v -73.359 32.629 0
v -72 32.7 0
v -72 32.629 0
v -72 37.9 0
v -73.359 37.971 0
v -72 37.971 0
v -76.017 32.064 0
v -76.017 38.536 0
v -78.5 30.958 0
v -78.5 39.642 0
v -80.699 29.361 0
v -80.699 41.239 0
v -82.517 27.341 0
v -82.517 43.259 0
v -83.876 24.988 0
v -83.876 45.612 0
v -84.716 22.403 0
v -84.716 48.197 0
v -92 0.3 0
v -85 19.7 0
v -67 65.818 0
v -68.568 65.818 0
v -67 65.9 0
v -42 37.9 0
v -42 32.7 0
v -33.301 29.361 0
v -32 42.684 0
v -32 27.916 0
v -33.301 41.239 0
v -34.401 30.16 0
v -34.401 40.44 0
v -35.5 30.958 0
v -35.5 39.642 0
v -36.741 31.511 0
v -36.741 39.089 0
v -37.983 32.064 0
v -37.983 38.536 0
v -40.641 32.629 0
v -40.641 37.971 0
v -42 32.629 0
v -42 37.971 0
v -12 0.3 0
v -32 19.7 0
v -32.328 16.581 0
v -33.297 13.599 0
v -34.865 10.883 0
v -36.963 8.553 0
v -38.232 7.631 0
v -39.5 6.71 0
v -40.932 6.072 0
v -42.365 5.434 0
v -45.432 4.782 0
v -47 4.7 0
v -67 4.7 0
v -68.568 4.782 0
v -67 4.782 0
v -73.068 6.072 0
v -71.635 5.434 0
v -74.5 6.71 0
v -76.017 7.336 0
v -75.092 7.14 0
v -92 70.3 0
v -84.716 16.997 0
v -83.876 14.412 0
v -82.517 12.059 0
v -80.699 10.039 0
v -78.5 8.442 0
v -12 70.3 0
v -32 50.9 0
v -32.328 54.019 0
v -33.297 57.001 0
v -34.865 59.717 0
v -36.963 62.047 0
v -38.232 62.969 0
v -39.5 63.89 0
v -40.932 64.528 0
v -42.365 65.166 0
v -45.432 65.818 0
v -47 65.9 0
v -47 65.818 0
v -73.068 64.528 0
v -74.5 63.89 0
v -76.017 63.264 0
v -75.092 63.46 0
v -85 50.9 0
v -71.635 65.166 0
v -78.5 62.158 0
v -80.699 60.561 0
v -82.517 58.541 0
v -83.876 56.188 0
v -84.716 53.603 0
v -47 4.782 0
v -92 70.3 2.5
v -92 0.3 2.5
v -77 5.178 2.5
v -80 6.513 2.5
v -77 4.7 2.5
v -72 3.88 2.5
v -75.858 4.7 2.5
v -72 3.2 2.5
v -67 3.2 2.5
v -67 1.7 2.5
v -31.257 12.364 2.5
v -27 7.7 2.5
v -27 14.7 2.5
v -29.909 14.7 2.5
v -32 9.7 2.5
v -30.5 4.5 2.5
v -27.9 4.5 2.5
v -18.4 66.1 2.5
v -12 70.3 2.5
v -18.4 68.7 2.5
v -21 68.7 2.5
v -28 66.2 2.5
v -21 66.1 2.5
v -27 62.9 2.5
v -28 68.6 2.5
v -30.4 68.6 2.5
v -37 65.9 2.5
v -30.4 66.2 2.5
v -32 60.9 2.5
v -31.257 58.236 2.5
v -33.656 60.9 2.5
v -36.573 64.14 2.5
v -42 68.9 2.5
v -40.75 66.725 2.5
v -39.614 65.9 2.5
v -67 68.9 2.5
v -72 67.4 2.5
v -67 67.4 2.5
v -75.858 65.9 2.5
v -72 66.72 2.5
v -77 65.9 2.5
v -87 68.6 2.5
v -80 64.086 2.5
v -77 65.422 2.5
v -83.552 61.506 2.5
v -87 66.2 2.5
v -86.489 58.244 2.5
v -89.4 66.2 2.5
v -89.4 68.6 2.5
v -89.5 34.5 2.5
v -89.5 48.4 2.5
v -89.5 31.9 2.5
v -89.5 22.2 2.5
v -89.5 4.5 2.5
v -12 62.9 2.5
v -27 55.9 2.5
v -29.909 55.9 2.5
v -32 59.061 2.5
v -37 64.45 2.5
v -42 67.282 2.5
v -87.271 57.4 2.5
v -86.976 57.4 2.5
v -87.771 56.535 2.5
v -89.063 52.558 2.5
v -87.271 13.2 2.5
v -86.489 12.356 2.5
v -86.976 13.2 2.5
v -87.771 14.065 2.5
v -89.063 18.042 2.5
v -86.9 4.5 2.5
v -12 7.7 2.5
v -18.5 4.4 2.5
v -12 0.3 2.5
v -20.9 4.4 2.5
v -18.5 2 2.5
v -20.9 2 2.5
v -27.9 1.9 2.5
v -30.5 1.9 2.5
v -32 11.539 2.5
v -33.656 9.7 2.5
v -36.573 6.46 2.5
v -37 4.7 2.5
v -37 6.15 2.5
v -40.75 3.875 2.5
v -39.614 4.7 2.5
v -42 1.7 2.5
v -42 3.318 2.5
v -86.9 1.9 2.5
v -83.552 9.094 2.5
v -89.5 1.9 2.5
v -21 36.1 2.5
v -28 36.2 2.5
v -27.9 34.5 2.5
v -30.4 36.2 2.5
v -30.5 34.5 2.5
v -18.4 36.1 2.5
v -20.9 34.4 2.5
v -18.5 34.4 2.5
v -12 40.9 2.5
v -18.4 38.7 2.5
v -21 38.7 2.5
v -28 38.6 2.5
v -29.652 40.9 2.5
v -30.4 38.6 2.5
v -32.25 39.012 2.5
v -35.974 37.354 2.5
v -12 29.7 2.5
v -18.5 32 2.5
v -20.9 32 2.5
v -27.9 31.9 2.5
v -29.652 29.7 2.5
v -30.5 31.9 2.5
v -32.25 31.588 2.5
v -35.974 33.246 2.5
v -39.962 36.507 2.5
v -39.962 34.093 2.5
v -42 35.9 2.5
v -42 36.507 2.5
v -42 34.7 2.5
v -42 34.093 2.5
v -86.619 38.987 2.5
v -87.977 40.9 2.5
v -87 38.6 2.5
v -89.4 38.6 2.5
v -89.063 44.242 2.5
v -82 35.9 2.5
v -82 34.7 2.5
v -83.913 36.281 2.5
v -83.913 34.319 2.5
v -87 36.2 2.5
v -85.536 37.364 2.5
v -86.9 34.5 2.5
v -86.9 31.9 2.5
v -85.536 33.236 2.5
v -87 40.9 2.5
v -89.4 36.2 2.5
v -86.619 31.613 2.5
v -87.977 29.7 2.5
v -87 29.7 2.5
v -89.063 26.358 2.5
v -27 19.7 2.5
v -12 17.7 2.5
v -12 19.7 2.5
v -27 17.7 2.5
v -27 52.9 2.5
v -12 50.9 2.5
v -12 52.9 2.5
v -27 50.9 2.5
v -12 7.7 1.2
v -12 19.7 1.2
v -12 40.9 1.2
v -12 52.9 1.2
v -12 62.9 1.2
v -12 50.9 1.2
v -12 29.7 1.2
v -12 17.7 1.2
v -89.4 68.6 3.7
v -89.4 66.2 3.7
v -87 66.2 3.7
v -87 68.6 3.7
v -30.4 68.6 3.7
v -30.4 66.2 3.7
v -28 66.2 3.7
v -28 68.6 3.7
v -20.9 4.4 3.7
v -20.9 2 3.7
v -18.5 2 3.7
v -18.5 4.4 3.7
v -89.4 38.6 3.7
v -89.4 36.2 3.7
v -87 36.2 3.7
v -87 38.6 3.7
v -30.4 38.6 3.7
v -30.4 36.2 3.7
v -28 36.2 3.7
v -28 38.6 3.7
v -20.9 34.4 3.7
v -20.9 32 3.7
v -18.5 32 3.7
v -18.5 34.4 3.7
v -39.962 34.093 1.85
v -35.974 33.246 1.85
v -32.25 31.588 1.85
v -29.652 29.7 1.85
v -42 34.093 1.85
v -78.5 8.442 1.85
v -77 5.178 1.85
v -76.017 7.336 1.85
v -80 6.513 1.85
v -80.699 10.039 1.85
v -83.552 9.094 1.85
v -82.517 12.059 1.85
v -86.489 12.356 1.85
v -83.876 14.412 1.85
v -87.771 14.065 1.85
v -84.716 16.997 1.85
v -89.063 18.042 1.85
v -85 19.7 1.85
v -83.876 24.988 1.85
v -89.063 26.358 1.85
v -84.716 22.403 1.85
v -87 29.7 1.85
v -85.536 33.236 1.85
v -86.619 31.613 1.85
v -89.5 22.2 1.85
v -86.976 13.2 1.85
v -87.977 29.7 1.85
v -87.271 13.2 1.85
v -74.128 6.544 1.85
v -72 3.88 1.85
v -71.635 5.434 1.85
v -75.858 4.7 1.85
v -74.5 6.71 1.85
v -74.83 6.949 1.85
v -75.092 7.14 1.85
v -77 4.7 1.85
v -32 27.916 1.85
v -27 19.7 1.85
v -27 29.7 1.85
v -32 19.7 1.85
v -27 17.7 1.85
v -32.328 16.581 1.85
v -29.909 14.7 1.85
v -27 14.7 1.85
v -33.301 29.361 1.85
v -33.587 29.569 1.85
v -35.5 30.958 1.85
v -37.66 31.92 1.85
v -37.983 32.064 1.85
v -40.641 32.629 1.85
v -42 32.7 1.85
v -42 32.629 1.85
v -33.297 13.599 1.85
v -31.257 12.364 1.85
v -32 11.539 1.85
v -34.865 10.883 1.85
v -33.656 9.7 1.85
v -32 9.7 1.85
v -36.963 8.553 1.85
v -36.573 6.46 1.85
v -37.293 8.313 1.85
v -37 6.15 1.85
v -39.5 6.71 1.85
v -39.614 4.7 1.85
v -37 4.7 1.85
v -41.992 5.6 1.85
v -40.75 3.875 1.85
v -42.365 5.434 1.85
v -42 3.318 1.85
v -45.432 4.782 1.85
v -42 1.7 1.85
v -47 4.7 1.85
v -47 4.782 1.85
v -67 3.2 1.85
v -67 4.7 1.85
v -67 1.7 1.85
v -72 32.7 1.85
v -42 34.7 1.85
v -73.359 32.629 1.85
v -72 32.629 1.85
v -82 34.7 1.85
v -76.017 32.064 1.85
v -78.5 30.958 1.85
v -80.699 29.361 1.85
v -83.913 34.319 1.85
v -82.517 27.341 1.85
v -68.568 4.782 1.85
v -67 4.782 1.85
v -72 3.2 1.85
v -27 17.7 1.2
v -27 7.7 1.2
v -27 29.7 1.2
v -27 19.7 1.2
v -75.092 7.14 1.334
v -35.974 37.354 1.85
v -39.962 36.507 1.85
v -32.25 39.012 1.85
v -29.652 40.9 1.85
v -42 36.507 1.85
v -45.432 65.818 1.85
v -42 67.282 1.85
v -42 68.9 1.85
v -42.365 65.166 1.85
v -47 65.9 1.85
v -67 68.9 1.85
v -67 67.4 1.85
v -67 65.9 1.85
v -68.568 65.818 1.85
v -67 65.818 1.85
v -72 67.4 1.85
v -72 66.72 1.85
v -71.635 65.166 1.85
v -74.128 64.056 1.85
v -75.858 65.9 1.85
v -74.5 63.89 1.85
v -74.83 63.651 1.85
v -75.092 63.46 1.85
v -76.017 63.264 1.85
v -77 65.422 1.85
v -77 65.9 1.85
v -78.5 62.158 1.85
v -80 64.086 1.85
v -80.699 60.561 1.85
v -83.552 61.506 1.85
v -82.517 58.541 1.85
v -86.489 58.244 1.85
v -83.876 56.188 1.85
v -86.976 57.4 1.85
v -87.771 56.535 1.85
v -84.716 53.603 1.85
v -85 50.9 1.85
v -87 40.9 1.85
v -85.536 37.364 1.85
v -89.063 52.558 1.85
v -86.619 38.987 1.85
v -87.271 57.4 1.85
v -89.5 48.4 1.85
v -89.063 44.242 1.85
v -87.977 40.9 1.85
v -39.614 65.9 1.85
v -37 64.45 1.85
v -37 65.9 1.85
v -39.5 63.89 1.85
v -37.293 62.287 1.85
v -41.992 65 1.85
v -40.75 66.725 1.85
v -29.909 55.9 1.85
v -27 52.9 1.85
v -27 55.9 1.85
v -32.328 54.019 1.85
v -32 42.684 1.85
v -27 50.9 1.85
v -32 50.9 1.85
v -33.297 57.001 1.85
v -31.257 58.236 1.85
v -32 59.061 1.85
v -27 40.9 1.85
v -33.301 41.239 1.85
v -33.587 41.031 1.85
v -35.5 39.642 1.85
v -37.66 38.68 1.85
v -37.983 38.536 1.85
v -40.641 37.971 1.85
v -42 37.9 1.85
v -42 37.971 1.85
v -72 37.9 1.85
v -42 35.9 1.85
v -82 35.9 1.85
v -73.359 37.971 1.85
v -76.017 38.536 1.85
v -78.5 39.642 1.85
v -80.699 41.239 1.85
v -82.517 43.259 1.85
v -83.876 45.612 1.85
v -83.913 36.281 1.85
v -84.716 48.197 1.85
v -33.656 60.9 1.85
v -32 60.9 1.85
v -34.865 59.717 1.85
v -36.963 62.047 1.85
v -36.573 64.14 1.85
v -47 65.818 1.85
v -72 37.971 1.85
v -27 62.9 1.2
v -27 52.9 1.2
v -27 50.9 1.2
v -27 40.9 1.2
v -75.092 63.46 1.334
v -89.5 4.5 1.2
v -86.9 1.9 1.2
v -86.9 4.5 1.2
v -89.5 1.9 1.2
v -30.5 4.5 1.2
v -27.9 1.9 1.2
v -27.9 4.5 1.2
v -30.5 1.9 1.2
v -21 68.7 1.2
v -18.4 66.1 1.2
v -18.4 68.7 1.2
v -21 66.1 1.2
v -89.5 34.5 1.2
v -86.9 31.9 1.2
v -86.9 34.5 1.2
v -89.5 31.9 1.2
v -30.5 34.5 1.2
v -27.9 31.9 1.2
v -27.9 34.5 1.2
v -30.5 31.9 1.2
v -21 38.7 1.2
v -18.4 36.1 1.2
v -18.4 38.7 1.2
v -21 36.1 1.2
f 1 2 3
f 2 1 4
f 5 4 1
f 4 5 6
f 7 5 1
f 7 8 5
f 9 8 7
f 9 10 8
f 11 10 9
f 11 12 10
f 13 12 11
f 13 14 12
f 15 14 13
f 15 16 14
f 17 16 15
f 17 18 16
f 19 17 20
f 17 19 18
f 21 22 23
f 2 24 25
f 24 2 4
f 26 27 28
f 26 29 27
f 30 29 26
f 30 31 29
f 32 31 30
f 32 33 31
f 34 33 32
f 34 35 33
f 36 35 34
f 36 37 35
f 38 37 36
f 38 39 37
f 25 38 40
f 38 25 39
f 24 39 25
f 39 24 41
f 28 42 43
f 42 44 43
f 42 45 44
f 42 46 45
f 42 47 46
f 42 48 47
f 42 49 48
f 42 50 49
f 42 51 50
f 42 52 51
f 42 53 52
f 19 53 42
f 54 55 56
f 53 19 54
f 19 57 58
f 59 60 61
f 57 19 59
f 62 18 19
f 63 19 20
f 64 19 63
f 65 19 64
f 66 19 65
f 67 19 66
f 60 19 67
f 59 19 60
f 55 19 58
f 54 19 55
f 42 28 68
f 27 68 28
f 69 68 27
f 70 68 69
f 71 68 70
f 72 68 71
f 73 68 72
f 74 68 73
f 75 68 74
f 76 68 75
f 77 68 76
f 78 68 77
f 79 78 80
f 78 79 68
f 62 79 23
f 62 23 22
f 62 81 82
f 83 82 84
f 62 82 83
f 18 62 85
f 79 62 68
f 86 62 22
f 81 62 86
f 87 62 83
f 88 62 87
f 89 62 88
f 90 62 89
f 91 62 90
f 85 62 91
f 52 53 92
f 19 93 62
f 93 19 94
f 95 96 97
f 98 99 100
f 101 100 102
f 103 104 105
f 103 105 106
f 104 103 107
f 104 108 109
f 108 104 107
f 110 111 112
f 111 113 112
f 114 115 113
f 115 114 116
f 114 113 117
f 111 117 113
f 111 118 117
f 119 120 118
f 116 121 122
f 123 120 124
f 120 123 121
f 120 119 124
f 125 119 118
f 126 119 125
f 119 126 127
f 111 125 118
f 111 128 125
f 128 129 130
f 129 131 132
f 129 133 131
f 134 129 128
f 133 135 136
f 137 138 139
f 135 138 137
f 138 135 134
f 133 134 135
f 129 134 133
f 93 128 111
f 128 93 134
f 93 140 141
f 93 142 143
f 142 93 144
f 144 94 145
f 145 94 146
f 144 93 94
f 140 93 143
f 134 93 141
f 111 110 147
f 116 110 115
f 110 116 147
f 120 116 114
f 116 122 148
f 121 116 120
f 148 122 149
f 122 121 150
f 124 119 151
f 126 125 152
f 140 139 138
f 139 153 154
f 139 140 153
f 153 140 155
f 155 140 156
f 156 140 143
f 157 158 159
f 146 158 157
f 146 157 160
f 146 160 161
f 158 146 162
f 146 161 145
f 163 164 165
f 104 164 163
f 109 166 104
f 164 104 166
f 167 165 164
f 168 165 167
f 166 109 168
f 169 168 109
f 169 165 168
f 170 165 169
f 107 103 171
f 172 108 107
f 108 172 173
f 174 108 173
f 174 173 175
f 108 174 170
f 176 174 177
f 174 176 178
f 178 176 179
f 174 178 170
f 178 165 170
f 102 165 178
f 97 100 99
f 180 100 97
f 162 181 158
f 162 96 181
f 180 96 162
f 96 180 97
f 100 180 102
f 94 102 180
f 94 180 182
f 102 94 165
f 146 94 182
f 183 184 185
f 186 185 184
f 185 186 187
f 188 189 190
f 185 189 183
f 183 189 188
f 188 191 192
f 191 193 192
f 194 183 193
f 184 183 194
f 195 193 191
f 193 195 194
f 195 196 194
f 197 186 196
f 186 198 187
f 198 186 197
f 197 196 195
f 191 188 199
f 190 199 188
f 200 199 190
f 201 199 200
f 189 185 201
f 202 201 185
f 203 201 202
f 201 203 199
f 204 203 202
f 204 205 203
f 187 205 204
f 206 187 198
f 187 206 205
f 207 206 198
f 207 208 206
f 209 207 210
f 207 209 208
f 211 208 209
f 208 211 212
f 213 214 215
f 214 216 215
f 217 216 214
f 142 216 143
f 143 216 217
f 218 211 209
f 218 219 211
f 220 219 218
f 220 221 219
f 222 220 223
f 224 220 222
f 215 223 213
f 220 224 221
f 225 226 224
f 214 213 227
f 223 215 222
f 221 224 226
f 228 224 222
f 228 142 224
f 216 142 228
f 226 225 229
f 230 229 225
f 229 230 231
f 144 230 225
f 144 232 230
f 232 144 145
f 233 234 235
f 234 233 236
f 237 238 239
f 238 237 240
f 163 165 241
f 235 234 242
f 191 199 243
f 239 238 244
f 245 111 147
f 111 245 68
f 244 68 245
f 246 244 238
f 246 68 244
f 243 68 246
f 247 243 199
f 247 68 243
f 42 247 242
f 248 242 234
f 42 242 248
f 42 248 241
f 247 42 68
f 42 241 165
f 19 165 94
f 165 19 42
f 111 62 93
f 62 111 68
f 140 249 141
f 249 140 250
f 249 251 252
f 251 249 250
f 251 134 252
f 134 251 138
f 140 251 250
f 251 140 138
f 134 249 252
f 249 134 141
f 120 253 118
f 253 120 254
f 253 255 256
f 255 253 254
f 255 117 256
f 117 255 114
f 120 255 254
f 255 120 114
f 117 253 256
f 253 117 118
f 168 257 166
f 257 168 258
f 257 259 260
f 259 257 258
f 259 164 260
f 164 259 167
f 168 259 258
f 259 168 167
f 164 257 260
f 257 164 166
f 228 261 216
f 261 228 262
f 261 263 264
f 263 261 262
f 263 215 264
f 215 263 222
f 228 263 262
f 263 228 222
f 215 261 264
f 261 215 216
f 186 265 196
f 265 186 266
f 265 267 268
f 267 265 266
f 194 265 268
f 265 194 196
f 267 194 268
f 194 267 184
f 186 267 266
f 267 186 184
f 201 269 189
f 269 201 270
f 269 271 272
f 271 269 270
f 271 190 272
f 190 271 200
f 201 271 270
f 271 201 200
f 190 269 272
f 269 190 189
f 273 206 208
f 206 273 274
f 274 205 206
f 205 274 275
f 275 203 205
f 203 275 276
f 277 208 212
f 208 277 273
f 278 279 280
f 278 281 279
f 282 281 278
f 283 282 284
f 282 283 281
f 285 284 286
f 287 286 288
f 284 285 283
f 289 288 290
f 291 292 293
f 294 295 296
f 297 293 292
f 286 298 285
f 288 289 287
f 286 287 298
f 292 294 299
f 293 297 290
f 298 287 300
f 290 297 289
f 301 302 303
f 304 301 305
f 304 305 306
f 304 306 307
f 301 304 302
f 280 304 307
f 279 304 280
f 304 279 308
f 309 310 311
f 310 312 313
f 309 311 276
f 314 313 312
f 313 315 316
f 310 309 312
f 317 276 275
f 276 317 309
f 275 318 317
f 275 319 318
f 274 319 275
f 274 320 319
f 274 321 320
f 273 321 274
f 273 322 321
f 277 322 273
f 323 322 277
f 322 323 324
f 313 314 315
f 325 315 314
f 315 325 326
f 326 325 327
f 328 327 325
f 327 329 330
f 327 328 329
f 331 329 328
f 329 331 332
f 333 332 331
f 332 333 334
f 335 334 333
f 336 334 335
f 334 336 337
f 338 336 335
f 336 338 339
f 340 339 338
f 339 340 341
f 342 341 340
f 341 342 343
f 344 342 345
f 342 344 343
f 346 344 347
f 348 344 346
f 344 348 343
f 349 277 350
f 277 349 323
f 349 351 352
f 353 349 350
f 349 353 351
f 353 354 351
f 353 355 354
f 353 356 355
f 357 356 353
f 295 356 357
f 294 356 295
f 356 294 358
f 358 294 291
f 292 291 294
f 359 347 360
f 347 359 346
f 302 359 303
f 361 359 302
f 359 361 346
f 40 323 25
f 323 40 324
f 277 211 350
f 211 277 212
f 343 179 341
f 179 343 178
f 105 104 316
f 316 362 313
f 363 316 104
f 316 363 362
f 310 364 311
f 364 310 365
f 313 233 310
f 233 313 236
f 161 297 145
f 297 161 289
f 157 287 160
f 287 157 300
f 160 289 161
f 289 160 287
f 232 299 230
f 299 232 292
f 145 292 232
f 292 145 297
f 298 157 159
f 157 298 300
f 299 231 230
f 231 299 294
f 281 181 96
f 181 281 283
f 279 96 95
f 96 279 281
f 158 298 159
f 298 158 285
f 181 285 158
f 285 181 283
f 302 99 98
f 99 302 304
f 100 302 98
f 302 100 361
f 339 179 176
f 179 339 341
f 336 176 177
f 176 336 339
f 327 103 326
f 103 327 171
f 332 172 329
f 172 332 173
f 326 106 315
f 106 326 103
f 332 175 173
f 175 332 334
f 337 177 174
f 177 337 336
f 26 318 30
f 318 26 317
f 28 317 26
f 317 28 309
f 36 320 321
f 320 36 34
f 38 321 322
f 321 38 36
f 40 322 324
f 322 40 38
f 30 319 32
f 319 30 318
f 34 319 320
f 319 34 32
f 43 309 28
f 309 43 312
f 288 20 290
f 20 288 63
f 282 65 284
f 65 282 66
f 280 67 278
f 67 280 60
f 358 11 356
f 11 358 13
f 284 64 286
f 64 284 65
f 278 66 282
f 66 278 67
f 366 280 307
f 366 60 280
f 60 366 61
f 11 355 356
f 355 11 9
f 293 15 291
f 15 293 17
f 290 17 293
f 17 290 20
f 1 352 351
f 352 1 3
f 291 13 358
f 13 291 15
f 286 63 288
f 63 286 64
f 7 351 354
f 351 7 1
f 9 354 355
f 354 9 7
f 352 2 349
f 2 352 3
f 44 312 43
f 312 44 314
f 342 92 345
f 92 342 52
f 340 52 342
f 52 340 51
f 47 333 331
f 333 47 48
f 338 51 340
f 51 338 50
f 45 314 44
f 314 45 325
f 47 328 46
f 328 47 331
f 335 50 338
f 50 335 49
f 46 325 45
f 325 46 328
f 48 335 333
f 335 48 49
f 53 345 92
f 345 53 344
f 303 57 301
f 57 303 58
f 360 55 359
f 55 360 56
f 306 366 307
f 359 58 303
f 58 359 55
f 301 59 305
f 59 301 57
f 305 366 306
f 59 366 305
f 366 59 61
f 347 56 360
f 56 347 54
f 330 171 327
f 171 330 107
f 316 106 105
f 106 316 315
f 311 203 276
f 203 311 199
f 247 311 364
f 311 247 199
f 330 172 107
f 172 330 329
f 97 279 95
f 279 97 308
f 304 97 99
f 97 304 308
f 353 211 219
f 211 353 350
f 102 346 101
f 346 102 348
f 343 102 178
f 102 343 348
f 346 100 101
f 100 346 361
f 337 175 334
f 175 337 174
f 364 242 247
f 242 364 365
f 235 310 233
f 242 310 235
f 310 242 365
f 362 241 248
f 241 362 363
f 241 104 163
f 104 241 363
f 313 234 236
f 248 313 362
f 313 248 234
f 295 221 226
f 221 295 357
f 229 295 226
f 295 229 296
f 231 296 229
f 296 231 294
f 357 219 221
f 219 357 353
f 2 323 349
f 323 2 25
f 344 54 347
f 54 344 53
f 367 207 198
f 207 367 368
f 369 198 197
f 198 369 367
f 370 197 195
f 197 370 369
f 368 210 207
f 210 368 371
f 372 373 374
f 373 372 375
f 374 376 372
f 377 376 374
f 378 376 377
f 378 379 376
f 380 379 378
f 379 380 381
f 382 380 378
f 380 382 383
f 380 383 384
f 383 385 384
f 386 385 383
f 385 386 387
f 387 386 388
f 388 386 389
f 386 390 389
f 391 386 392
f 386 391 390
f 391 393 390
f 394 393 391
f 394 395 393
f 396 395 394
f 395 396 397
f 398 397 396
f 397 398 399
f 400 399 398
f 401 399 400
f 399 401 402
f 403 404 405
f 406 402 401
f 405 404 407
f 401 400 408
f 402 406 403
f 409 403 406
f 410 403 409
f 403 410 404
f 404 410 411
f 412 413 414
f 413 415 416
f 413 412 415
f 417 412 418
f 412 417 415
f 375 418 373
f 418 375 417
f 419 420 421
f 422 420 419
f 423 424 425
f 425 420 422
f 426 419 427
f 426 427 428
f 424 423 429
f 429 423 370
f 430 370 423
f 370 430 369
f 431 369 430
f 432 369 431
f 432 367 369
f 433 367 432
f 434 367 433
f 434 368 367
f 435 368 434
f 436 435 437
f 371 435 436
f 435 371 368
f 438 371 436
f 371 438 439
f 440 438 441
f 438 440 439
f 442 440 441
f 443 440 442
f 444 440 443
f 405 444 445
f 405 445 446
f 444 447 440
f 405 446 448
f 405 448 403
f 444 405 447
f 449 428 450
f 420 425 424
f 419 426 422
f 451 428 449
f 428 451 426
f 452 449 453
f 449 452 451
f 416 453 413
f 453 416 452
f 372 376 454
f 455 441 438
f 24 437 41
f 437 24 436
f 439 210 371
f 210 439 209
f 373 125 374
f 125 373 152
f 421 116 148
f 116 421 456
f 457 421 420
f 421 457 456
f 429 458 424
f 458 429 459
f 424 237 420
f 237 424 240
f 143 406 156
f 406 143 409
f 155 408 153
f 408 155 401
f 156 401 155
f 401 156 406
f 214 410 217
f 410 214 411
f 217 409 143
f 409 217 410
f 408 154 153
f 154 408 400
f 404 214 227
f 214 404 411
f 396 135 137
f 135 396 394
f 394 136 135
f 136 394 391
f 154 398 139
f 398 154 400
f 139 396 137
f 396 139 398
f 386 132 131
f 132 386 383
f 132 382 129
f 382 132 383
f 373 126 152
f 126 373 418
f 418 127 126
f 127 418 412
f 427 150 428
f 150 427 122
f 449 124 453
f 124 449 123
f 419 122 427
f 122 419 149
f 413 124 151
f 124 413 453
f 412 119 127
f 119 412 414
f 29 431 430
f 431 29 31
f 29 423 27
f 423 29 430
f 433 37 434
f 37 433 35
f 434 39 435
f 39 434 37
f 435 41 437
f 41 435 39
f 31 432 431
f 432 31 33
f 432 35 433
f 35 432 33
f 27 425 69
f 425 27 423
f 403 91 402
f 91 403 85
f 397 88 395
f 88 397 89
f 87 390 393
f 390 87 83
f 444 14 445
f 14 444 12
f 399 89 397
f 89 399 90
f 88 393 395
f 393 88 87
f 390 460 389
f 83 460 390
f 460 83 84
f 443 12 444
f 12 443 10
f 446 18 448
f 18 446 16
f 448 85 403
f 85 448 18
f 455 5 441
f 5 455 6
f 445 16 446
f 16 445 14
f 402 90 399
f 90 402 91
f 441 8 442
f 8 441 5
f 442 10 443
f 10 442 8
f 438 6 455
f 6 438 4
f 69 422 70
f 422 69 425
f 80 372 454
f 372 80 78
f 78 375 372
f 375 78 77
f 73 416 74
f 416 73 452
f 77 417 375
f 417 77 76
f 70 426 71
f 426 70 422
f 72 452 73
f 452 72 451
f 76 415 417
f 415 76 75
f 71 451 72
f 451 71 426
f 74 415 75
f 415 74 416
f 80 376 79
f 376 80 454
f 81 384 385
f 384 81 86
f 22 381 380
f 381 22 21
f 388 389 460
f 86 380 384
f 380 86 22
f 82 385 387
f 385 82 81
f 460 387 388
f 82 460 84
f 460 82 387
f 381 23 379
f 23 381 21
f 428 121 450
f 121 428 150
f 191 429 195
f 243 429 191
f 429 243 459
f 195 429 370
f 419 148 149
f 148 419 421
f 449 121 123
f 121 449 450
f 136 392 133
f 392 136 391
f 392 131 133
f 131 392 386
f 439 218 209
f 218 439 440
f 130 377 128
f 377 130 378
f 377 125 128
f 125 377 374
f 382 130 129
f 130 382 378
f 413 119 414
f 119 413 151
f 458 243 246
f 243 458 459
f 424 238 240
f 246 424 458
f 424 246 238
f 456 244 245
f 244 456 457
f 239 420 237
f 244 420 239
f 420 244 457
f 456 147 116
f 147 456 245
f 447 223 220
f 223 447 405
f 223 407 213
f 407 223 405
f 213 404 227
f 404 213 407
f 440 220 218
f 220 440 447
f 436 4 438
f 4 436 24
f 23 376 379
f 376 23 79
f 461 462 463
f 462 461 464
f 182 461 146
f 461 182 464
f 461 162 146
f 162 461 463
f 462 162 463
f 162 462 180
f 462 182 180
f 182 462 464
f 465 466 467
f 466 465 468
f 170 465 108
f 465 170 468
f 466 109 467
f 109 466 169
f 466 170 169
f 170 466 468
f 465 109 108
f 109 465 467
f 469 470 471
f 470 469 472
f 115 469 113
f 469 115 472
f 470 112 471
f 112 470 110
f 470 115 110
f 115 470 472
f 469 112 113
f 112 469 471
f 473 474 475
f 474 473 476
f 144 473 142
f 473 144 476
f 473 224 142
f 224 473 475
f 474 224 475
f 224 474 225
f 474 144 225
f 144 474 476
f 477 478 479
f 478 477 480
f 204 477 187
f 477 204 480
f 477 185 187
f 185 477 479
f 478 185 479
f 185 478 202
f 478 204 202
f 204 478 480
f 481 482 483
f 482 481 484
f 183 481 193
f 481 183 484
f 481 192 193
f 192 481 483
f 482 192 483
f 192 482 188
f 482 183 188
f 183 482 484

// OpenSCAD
rotate([0,-90,0]) translate([0, 0, 04]) difference() {
    union() {
        translate([0, 0.3, 8]) cube([2.5, 70, 80]);
        translate([2.5, 66.2, 83]) cube([1.2, 2.4,2.4]);
        translate([2.5, 66.2, 24]) cube([1.2, 2.4,2.4]);
        translate([2.5, 2, 14.5]) cube([1.2, 2.4,2.4]);
        translate([2.5, 36.2, 83]) cube([1.2, 2.4,2.4]);
        translate([2.5, 36.2, 24]) cube([1.2, 2.4,2.4]);
        translate([2.5, 32, 14.5]) cube([1.2, 2.4,2.4]);
    }
    
    translate([1.2, 1.9, 82.9]) cube([1.3, 2.6,2.6]);
    translate([1.2, 1.9, 23.9]) cube([1.3, 2.6,2.6]);
    translate([1.2, 66.1, 14.4]) cube([1.3, 2.6,2.6]);
    translate([1.2, 31.9, 82.9]) cube([1.3, 2.6,2.6]);
    translate([1.2, 31.9, 23.9]) cube([1.3, 2.6,2.6]);
    translate([1.2, 36.1, 14.4]) cube([1.3, 2.6,2.6]);
    
   
    
    translate([0,34.7,23]) mirror([0,-1,0]) {
        translate([1.85, 5, 0]) cube([1, 15, 5]);
        translate([1.85, 5, 5]) cube([1, 20, 10]);
        translate([1.85, 0,15]) cube([1, 30, 35]);
        translate([1.85,30,15]) cube([1, 3, 25]);
        translate([1.85,30,40]) cube([1, 1.5, 5]);
        translate([1.85, 0,50]) cube([1, 25, 5]);
        translate([1.85, 5,55]) cube([1, 15, 5]);
        translate([1.85,25,10]) cube([1, 5, 5]);
        translate([1.2,5,-40]) cube([2, 10, 40]);
        translate([1.2,17,-40]) cube([2, 10, 40]);
        
        
        translate([2.5,5,55]) rotate([0,90,0]) cylinder(h=1.3, r=5, center=true);
        intersection() {
            translate([2.5,20,15]) rotate([0,90,0]) cylinder(h=1.3, r=19.5, center=true);
            translate([0,0,0]) cube([3,10,15]);
        } intersection() {
            translate([2.5,12.5,42.5]) rotate([0,90,0]) cylinder(h=1.3, r=20, center=true);
            translate([0,5 ,50]) cube([3,16.5,15]);
        } intersection() {
            translate([2.5,10,42.5]) rotate([0,90,0]) cylinder(h=1.3, r=21, center=true);
            translate([0,15 ,45]) cube([3,20,16]);
        } intersection() {
            translate([2.5,20,20]) rotate([0,90,0]) cylinder(h=1.3, r=12.5, center=true);
            translate([0,20 ,10]) cube([3,20,20]);
        } intersection() {
            translate([2.5,0,35]) rotate([0,90,0]) cylinder(h=1.3, r=38, center=true);
            translate([0,15 ,0]) cube([3,15,15]);
        } intersection() {
            translate([0,15,15]) rotate([0,90,0]) cylinder(h=5, r=13, center=true);
            translate([0,0,5]) cube([5,15,30]);
        } intersection() {
            translate([0,15,45]) rotate([0,90,0]) cylinder(h=5, r=13, center=true);
            translate([0,0,45]) cube([5,30,15]);
        } intersection() {
            translate([0,15,20]) rotate([0,90,0]) cylinder(h=5, r=15, center=true);
            translate([0,5,5]) cube([5,30,15]);
        } intersection() {
            translate([0,15,40]) rotate([0,90,0]) cylinder(h=5, r=15, center=true);
            translate([0,15,40]) cube([5,15,10]);
        }
        translate([0,2,15]) cube([5,13,30]);
        translate([0,15,20]) cube([5,15,20]);
    }

    
    translate([0,35.9,23]) {
        translate([1.85, 5, 0]) cube([1, 15, 5]);
        translate([1.85, 5, 5]) cube([1, 20, 10]);
        translate([1.85, 0,15]) cube([1, 30, 35]);
        translate([1.85,30,15]) cube([1, 3, 25]);
        translate([1.85,30,40]) cube([1, 1.5, 5]);
        translate([1.85, 0,50]) cube([1, 25, 5]);
        translate([1.85, 5,55]) cube([1, 15, 5]);
        translate([1.85,25,10]) cube([1, 5, 5]);
        translate([1.2,5,-40]) cube([2, 10, 40]);
        translate([1.2,17,-40]) cube([2, 10, 40]);
        
        
        translate([2.5,5,55]) rotate([0,90,0]) cylinder(h=1.3, r=5, center=true);
        intersection() {
            translate([2.5,20,15]) rotate([0,90,0]) cylinder(h=1.3, r=19.5, center=true);
            translate([0,0,0]) cube([3,10,15]);
        } intersection() {
            translate([2.5,12.5,42.5]) rotate([0,90,0]) cylinder(h=1.3, r=20, center=true);
            translate([0,5 ,50]) cube([3,16.5,15]);
        } intersection() {
            translate([2.5,10,42.5]) rotate([0,90,0]) cylinder(h=1.3, r=21, center=true);
            translate([0,15 ,45]) cube([3,20,16]);
        } intersection() {
            translate([2.5,20,20]) rotate([0,90,0]) cylinder(h=1.3, r=12.5, center=true);
            translate([0,20 ,10]) cube([3,20,20]);
        } intersection() {
            translate([2.5,0,35]) rotate([0,90,0]) cylinder(h=1.3, r=38, center=true);
            translate([0,15 ,0]) cube([3,15,15]);
        } intersection() {
            translate([0,15,15]) rotate([0,90,0]) cylinder(h=5, r=13, center=true);
            translate([0,0,5]) cube([5,15,30]);
        } intersection() {
            translate([0,15,45]) rotate([0,90,0]) cylinder(h=5, r=13, center=true);
            translate([0,0,45]) cube([5,30,15]);
        } intersection() {
            translate([0,15,20]) rotate([0,90,0]) cylinder(h=5, r=15, center=true);
            translate([0,5,5]) cube([5,30,15]);
        } intersection() {
            translate([0,15,40]) rotate([0,90,0]) cylinder(h=5, r=15, center=true);
            translate([0,15,40]) cube([5,15,10]);
        }
        translate([0,2,15]) cube([5,13,30]);
        translate([0,15,20]) cube([5,15,20]);
    }
}
